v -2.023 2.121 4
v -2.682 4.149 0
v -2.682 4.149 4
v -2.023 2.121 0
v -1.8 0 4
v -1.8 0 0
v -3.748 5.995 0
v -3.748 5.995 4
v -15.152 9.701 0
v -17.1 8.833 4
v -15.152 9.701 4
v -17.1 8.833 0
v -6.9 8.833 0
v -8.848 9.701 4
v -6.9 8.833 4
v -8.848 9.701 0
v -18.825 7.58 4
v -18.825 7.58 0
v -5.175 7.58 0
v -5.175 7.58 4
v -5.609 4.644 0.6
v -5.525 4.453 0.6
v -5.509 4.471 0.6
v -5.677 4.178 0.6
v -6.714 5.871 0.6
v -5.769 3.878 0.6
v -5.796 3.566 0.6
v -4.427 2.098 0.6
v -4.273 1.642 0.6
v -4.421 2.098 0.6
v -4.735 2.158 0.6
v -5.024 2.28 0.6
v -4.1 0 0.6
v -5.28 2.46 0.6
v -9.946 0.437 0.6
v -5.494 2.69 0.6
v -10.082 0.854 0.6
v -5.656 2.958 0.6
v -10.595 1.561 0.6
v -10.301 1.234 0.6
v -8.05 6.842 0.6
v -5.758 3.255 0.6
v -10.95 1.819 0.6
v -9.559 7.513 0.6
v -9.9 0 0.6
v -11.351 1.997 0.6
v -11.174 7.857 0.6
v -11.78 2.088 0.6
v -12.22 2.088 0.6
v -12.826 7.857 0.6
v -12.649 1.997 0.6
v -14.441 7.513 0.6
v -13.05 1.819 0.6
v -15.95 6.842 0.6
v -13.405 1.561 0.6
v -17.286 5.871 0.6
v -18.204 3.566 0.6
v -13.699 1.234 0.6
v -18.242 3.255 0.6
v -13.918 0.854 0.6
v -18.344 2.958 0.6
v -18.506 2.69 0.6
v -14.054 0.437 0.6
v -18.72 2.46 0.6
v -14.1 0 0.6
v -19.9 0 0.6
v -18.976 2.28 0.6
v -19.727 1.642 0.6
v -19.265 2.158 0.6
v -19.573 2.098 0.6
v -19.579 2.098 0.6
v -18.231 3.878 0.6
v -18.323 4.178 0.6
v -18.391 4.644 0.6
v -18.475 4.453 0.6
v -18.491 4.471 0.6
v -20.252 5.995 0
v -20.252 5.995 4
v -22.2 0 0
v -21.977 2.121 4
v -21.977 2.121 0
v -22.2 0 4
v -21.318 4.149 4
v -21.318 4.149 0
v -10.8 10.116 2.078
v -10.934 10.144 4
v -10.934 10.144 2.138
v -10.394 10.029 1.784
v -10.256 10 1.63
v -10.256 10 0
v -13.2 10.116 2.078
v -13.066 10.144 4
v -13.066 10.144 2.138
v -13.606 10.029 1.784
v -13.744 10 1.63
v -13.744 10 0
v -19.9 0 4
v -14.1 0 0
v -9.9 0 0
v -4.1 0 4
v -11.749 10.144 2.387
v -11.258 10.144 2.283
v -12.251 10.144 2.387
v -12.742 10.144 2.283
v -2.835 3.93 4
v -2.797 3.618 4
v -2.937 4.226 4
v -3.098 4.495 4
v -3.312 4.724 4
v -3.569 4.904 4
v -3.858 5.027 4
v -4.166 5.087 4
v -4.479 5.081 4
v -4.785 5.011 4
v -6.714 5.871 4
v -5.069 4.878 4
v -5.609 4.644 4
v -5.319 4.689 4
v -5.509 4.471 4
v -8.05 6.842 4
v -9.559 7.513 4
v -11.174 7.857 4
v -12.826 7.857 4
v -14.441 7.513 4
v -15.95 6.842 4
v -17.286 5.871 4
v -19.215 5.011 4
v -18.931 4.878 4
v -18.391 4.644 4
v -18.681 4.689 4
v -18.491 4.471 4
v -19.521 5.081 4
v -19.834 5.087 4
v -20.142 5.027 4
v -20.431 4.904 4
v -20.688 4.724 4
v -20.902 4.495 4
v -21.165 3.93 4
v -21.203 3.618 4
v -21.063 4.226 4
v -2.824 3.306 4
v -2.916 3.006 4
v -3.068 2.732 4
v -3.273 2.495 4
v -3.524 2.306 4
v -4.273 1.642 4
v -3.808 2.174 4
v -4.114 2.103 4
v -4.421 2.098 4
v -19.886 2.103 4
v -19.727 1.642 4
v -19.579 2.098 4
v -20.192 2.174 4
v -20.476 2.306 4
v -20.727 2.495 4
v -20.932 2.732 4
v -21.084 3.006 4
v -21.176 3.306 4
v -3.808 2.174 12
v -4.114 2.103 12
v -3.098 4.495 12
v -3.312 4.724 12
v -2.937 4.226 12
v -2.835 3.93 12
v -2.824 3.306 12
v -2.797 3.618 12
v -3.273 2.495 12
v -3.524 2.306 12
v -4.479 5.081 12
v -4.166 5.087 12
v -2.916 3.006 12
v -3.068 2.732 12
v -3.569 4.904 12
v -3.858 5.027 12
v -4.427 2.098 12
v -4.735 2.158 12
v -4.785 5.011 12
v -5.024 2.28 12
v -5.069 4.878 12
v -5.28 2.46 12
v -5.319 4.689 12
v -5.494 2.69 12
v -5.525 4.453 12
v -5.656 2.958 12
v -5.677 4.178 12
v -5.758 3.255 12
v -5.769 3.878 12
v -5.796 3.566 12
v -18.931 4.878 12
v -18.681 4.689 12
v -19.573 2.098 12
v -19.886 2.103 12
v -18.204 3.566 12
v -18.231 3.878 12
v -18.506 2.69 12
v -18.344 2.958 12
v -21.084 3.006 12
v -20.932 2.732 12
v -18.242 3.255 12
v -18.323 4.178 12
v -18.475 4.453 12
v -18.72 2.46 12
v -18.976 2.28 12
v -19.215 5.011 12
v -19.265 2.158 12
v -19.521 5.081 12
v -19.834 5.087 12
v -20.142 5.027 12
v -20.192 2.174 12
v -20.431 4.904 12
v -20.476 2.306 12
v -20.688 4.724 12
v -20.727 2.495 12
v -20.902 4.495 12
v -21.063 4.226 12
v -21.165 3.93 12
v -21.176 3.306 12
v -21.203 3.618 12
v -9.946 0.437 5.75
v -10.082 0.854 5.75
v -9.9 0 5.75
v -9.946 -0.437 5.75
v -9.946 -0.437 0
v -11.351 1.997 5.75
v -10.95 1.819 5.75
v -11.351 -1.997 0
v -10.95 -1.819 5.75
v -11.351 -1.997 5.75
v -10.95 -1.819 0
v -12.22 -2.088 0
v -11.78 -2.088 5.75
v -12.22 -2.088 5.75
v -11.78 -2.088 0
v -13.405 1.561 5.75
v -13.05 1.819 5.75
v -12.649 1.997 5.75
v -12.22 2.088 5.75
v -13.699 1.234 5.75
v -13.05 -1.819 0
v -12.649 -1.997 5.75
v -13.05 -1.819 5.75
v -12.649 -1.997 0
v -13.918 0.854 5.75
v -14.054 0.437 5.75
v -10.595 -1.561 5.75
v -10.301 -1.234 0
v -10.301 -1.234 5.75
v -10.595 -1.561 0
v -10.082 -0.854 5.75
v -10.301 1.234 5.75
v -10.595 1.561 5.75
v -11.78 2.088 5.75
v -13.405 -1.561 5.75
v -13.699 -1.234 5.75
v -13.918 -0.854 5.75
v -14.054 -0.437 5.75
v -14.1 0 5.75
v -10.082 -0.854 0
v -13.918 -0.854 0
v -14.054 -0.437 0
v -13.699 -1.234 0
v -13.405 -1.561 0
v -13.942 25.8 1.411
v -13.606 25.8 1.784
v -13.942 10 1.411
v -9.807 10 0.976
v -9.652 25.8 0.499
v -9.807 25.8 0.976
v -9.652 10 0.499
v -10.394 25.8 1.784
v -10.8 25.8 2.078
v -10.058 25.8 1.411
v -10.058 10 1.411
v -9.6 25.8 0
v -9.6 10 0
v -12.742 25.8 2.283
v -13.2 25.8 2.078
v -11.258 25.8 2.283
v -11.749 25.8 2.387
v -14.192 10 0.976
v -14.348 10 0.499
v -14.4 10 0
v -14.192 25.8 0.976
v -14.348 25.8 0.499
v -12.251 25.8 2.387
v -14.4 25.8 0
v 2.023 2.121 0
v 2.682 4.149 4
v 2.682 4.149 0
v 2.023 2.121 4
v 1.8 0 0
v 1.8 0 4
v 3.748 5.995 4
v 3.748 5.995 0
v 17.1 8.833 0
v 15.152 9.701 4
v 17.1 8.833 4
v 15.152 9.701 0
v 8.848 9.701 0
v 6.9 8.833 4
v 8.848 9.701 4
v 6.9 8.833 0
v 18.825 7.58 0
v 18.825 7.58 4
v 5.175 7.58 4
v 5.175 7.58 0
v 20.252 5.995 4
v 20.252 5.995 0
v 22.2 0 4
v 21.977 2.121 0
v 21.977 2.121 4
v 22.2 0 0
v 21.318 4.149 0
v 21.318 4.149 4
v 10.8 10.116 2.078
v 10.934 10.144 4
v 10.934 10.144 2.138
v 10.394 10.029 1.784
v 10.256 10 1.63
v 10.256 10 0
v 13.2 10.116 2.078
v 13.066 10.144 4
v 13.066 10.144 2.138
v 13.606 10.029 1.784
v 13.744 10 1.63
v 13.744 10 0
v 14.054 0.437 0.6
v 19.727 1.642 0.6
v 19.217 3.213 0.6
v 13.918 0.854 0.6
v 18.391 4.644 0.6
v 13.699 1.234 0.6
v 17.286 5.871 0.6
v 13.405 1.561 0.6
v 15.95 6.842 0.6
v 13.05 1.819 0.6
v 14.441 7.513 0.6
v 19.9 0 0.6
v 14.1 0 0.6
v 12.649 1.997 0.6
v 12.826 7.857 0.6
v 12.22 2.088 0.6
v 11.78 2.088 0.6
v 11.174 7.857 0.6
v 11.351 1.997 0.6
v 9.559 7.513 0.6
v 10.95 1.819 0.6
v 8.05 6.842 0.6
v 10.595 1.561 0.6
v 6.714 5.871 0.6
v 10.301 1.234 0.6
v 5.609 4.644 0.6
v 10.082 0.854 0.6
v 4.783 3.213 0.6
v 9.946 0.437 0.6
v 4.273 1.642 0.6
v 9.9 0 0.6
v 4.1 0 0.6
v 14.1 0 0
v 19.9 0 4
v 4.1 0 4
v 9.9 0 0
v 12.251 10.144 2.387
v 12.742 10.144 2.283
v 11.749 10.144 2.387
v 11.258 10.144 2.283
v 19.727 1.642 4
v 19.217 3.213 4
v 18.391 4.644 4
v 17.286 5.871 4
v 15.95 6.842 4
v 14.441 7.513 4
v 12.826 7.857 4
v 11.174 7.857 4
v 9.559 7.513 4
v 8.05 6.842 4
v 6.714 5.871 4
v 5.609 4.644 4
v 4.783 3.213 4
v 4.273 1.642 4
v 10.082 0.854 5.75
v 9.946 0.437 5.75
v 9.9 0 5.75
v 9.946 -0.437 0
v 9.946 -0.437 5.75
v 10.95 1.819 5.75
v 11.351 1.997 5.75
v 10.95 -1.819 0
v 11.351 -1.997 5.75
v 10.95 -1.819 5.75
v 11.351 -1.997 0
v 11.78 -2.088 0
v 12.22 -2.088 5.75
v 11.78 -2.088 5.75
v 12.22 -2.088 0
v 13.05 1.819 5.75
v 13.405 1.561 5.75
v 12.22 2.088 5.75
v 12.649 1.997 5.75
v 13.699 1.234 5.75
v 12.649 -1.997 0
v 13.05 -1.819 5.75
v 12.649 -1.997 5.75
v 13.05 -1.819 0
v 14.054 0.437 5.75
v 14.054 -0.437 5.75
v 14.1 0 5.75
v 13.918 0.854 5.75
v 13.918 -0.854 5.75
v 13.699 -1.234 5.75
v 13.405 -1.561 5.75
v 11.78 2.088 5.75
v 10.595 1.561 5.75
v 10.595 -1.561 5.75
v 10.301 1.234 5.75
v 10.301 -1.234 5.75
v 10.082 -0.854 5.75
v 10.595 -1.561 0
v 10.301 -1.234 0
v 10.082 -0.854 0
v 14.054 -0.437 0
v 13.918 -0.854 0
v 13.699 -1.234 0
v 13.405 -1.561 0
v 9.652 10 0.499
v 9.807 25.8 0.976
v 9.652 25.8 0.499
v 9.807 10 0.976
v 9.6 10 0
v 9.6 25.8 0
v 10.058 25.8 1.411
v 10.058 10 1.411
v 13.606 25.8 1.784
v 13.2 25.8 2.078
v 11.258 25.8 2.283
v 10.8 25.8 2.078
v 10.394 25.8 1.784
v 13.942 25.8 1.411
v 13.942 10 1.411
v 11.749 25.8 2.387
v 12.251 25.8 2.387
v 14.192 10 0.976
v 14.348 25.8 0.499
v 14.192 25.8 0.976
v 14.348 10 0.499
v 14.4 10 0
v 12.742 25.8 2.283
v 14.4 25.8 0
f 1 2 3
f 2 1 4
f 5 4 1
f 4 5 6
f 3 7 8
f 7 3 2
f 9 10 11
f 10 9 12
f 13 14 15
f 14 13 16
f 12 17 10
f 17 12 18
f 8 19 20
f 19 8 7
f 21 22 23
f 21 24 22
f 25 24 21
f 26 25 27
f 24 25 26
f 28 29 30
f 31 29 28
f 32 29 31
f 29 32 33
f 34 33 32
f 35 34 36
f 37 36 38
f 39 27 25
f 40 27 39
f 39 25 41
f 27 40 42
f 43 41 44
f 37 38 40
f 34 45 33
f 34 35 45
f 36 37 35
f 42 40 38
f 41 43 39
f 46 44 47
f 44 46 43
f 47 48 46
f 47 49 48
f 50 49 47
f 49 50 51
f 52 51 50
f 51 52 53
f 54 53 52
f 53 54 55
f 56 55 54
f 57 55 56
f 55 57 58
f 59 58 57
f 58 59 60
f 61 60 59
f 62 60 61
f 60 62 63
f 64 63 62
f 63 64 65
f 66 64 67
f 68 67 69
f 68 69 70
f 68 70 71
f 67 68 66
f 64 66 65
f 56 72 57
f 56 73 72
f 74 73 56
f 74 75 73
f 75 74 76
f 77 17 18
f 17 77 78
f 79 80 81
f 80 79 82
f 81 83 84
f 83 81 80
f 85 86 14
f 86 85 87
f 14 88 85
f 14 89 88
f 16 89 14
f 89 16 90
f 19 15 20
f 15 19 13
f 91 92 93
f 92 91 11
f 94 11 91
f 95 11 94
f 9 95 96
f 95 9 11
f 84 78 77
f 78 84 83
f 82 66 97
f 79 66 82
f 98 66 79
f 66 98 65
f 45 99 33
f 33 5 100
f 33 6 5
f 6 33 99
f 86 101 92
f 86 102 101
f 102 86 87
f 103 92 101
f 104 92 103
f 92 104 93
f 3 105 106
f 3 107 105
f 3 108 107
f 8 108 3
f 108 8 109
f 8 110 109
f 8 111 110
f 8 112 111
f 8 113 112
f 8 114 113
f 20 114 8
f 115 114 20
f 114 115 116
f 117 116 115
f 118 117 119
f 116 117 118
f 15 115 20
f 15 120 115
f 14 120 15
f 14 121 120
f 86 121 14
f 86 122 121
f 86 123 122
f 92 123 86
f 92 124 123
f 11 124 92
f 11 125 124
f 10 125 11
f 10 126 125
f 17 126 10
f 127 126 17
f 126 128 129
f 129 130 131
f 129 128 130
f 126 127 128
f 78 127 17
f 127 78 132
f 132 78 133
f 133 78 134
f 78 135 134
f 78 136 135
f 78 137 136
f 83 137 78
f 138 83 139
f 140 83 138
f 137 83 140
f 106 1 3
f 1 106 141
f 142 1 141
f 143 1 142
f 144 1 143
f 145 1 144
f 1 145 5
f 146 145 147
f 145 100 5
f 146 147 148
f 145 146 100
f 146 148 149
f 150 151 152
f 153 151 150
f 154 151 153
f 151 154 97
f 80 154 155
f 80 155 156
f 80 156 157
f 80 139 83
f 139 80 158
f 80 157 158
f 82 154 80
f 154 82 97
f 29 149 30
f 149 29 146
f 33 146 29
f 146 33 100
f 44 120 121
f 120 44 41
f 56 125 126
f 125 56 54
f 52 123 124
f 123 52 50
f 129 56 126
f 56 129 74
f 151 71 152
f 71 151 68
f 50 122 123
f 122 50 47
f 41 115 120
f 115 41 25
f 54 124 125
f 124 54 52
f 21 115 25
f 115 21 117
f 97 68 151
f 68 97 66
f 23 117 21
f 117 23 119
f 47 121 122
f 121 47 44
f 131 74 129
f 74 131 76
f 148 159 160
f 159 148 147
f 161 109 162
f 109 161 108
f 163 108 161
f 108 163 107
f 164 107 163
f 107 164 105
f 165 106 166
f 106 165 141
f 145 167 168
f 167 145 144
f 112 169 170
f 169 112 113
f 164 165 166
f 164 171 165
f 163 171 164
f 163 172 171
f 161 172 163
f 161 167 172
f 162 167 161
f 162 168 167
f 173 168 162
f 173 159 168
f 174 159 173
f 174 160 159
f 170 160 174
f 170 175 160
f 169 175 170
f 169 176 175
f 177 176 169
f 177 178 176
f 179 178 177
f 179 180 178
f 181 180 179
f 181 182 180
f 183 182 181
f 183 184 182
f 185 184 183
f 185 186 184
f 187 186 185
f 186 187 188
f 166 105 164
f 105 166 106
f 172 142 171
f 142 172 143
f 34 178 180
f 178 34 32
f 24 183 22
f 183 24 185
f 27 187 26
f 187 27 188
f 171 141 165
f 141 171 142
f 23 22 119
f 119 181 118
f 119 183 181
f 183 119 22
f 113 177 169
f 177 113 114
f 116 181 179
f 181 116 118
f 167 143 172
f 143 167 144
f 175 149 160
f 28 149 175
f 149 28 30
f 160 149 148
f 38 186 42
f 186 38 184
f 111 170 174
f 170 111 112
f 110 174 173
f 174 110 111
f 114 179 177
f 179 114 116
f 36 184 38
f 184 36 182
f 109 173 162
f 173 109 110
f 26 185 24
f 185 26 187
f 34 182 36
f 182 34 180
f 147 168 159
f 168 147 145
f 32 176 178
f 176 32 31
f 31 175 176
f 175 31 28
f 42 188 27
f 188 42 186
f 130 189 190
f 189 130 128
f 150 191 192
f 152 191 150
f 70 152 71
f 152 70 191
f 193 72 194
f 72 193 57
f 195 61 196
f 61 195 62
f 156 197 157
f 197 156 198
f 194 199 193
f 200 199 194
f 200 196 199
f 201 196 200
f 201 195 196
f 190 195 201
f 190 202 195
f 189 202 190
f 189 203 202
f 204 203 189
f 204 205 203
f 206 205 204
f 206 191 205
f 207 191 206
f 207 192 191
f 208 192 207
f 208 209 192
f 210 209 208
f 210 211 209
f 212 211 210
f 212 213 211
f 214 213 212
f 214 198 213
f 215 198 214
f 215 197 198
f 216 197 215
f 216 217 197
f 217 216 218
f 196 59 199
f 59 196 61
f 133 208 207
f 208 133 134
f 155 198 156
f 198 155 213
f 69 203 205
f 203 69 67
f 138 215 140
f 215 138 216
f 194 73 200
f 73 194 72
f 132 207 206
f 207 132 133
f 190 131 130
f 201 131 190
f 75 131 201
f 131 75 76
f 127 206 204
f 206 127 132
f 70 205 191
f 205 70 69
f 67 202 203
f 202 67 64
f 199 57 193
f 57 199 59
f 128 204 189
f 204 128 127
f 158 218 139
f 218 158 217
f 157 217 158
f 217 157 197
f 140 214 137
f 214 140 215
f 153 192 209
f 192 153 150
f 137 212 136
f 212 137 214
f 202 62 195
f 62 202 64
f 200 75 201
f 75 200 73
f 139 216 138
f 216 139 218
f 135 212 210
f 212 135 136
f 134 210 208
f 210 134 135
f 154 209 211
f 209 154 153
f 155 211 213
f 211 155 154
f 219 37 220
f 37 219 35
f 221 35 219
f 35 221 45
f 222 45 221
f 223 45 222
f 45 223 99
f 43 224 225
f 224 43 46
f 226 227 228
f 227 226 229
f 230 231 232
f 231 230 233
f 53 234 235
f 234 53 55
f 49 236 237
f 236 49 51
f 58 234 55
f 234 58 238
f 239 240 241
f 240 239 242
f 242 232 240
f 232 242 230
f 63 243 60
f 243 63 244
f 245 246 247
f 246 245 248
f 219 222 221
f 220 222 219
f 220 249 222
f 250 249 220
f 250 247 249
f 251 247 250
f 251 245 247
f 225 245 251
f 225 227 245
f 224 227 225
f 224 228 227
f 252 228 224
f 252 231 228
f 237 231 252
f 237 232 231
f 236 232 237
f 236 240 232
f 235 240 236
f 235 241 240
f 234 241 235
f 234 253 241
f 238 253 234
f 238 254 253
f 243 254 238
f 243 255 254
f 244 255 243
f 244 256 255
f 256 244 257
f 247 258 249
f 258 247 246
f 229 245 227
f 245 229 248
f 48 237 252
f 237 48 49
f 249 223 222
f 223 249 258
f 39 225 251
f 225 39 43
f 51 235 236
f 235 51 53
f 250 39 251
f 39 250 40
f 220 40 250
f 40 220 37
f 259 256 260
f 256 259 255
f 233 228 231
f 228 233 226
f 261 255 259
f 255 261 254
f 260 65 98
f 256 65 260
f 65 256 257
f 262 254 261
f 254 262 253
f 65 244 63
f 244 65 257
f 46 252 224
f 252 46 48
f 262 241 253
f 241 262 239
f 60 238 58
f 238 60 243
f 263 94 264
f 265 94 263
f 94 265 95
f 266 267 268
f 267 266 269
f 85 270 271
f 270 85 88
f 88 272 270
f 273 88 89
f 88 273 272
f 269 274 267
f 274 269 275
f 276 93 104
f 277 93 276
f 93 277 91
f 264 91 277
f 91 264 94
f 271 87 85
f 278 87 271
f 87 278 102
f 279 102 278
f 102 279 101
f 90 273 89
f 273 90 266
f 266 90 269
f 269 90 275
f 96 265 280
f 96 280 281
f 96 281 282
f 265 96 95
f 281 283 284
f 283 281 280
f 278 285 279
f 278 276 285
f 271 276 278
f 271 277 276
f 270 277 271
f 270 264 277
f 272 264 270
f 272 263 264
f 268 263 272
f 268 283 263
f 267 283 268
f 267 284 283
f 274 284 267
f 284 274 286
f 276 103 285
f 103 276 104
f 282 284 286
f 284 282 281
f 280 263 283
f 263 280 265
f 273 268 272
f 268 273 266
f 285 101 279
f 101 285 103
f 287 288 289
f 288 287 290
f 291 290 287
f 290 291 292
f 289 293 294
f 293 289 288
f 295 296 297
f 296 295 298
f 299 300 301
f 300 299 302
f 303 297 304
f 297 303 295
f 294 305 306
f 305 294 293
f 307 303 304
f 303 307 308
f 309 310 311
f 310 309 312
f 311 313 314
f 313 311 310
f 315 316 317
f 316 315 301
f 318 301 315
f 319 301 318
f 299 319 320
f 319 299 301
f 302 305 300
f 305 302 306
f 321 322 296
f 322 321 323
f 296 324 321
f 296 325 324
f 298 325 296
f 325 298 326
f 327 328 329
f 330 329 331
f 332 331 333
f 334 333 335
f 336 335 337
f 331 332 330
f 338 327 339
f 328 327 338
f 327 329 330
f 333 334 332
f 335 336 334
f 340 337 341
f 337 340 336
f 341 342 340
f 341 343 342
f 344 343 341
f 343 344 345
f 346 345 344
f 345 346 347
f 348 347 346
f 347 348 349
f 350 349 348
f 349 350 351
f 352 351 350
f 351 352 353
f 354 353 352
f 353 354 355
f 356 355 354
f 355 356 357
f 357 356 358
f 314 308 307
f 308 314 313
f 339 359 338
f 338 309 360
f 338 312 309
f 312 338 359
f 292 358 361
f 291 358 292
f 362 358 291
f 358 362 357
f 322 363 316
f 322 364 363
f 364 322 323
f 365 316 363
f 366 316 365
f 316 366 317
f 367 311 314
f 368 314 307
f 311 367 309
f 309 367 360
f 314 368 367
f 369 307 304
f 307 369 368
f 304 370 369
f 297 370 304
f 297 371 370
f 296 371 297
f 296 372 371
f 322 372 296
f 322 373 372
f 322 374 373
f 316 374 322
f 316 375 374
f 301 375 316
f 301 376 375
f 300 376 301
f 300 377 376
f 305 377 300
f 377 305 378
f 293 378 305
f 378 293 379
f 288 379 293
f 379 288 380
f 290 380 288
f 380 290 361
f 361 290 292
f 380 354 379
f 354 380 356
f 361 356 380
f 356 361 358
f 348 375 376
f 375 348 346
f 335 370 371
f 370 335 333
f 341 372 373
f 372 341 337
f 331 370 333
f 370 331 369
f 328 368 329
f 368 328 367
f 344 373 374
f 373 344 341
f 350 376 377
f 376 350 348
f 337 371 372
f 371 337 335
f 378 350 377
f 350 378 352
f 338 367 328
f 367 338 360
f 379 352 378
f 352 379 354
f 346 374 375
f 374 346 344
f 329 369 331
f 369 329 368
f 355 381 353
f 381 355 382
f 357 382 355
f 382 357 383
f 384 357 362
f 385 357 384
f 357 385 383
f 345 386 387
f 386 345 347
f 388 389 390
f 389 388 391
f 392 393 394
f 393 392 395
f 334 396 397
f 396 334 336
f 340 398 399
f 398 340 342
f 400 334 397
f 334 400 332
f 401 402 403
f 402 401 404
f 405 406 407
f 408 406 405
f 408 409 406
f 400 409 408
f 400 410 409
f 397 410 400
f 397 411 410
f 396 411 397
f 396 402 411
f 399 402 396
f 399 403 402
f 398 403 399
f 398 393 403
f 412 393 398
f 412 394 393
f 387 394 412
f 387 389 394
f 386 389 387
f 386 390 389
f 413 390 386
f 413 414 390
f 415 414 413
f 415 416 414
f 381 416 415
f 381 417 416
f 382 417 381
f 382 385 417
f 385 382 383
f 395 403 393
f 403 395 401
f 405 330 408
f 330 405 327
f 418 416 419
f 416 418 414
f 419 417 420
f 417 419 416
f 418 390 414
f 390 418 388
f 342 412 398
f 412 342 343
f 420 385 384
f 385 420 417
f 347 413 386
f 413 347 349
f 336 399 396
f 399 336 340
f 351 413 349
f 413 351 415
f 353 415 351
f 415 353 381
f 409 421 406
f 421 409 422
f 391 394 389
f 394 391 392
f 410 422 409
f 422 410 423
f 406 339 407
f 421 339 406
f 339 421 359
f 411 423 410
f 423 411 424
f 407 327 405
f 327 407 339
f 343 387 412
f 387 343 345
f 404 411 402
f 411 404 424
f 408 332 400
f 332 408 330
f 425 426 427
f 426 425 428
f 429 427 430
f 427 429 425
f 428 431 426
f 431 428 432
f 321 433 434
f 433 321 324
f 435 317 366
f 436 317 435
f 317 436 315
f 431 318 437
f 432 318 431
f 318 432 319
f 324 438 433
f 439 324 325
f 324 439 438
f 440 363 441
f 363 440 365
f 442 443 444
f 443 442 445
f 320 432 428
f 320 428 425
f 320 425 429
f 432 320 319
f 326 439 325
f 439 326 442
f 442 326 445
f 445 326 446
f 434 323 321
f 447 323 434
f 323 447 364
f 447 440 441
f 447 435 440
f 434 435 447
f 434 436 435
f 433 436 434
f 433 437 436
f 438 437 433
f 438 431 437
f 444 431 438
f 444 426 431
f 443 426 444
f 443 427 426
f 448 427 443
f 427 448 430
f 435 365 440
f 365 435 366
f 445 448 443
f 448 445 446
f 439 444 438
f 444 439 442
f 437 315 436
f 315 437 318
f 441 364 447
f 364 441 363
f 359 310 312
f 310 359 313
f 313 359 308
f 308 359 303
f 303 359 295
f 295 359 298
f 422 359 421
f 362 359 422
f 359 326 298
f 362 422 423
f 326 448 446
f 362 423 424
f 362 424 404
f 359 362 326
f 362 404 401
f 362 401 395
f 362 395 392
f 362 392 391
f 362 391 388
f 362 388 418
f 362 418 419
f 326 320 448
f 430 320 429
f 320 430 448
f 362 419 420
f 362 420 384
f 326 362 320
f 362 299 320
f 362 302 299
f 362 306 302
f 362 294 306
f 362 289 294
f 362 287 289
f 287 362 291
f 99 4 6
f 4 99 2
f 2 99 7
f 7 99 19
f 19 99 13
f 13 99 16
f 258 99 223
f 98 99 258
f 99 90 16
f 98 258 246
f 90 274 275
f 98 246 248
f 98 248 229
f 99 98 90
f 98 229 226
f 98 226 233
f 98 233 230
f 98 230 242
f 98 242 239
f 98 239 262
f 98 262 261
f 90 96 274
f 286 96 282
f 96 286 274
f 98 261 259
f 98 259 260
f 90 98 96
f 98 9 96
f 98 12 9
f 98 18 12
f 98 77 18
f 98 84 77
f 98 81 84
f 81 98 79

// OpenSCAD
/* RC Car JoyStick
 *
 * 10 units = 1mm
 */

scale(1/10) print();

module print() {
  offset = 120;
  bound = 600;
  difference() {
    union() {
      translate([-offset, 0, 0]) rotate([0,   0, 0]) joystick();
      translate([ offset, 0, 0]) rotate([0, 180, 0]) joystick();
    };
    translate([0, 0, -bound/2]) cube(bound, center=true);
  }
}

module joystick() {
  union() {
    axis();
    cam();
    ridge();
    translate([0, 100, 0]) stick();
    actuators();
  }
}

module axis() {
  height = 115;
  diameter = 42;
  translate([0, 0, -height/2]) cylinder(h=height,d=diameter);
}

module cam() {
  height = 12;
  radius = 102;
  difference() {
    translate([0, 0, -height/2]) cylinder(h=height,r=radius);
    translate([0, -radius, 0]) cube(2*radius, center=true); 
  };
}

module ridge() {
  thickness = 23;
  outer_radius = 102;
  inner_radius = outer_radius - thickness;
  height = 80;
  difference() {
    translate([0, 0, -height/2]) ring(h=height, r1=inner_radius, r2=outer_radius);
    translate([0, -outer_radius, 0]) cube(2*outer_radius, center=true);
  }
}

module ring(h, r1, r2) {
  difference() {
    cylinder(h=h, r=r2);
    translate([0, 0, -h]) cylinder(h=3*h,r=r1);
  }
}

module stick() {
  height = 158;
  diameter = 48;
  rotate([-90, 0, 0]) cylinder(h=height, d=diameter);
}

module actuators() {
  radius = 85;
  angle = 25;
  union() {
    rotate(angle) translate([radius, 0, 0]) actuator();
    rotate(-angle) translate([-radius, 0, 0]) actuator();
  }
}

module actuator() {
  height = 120;
  diameter = 30;
  cylinder(h=height, d=diameter);
}
